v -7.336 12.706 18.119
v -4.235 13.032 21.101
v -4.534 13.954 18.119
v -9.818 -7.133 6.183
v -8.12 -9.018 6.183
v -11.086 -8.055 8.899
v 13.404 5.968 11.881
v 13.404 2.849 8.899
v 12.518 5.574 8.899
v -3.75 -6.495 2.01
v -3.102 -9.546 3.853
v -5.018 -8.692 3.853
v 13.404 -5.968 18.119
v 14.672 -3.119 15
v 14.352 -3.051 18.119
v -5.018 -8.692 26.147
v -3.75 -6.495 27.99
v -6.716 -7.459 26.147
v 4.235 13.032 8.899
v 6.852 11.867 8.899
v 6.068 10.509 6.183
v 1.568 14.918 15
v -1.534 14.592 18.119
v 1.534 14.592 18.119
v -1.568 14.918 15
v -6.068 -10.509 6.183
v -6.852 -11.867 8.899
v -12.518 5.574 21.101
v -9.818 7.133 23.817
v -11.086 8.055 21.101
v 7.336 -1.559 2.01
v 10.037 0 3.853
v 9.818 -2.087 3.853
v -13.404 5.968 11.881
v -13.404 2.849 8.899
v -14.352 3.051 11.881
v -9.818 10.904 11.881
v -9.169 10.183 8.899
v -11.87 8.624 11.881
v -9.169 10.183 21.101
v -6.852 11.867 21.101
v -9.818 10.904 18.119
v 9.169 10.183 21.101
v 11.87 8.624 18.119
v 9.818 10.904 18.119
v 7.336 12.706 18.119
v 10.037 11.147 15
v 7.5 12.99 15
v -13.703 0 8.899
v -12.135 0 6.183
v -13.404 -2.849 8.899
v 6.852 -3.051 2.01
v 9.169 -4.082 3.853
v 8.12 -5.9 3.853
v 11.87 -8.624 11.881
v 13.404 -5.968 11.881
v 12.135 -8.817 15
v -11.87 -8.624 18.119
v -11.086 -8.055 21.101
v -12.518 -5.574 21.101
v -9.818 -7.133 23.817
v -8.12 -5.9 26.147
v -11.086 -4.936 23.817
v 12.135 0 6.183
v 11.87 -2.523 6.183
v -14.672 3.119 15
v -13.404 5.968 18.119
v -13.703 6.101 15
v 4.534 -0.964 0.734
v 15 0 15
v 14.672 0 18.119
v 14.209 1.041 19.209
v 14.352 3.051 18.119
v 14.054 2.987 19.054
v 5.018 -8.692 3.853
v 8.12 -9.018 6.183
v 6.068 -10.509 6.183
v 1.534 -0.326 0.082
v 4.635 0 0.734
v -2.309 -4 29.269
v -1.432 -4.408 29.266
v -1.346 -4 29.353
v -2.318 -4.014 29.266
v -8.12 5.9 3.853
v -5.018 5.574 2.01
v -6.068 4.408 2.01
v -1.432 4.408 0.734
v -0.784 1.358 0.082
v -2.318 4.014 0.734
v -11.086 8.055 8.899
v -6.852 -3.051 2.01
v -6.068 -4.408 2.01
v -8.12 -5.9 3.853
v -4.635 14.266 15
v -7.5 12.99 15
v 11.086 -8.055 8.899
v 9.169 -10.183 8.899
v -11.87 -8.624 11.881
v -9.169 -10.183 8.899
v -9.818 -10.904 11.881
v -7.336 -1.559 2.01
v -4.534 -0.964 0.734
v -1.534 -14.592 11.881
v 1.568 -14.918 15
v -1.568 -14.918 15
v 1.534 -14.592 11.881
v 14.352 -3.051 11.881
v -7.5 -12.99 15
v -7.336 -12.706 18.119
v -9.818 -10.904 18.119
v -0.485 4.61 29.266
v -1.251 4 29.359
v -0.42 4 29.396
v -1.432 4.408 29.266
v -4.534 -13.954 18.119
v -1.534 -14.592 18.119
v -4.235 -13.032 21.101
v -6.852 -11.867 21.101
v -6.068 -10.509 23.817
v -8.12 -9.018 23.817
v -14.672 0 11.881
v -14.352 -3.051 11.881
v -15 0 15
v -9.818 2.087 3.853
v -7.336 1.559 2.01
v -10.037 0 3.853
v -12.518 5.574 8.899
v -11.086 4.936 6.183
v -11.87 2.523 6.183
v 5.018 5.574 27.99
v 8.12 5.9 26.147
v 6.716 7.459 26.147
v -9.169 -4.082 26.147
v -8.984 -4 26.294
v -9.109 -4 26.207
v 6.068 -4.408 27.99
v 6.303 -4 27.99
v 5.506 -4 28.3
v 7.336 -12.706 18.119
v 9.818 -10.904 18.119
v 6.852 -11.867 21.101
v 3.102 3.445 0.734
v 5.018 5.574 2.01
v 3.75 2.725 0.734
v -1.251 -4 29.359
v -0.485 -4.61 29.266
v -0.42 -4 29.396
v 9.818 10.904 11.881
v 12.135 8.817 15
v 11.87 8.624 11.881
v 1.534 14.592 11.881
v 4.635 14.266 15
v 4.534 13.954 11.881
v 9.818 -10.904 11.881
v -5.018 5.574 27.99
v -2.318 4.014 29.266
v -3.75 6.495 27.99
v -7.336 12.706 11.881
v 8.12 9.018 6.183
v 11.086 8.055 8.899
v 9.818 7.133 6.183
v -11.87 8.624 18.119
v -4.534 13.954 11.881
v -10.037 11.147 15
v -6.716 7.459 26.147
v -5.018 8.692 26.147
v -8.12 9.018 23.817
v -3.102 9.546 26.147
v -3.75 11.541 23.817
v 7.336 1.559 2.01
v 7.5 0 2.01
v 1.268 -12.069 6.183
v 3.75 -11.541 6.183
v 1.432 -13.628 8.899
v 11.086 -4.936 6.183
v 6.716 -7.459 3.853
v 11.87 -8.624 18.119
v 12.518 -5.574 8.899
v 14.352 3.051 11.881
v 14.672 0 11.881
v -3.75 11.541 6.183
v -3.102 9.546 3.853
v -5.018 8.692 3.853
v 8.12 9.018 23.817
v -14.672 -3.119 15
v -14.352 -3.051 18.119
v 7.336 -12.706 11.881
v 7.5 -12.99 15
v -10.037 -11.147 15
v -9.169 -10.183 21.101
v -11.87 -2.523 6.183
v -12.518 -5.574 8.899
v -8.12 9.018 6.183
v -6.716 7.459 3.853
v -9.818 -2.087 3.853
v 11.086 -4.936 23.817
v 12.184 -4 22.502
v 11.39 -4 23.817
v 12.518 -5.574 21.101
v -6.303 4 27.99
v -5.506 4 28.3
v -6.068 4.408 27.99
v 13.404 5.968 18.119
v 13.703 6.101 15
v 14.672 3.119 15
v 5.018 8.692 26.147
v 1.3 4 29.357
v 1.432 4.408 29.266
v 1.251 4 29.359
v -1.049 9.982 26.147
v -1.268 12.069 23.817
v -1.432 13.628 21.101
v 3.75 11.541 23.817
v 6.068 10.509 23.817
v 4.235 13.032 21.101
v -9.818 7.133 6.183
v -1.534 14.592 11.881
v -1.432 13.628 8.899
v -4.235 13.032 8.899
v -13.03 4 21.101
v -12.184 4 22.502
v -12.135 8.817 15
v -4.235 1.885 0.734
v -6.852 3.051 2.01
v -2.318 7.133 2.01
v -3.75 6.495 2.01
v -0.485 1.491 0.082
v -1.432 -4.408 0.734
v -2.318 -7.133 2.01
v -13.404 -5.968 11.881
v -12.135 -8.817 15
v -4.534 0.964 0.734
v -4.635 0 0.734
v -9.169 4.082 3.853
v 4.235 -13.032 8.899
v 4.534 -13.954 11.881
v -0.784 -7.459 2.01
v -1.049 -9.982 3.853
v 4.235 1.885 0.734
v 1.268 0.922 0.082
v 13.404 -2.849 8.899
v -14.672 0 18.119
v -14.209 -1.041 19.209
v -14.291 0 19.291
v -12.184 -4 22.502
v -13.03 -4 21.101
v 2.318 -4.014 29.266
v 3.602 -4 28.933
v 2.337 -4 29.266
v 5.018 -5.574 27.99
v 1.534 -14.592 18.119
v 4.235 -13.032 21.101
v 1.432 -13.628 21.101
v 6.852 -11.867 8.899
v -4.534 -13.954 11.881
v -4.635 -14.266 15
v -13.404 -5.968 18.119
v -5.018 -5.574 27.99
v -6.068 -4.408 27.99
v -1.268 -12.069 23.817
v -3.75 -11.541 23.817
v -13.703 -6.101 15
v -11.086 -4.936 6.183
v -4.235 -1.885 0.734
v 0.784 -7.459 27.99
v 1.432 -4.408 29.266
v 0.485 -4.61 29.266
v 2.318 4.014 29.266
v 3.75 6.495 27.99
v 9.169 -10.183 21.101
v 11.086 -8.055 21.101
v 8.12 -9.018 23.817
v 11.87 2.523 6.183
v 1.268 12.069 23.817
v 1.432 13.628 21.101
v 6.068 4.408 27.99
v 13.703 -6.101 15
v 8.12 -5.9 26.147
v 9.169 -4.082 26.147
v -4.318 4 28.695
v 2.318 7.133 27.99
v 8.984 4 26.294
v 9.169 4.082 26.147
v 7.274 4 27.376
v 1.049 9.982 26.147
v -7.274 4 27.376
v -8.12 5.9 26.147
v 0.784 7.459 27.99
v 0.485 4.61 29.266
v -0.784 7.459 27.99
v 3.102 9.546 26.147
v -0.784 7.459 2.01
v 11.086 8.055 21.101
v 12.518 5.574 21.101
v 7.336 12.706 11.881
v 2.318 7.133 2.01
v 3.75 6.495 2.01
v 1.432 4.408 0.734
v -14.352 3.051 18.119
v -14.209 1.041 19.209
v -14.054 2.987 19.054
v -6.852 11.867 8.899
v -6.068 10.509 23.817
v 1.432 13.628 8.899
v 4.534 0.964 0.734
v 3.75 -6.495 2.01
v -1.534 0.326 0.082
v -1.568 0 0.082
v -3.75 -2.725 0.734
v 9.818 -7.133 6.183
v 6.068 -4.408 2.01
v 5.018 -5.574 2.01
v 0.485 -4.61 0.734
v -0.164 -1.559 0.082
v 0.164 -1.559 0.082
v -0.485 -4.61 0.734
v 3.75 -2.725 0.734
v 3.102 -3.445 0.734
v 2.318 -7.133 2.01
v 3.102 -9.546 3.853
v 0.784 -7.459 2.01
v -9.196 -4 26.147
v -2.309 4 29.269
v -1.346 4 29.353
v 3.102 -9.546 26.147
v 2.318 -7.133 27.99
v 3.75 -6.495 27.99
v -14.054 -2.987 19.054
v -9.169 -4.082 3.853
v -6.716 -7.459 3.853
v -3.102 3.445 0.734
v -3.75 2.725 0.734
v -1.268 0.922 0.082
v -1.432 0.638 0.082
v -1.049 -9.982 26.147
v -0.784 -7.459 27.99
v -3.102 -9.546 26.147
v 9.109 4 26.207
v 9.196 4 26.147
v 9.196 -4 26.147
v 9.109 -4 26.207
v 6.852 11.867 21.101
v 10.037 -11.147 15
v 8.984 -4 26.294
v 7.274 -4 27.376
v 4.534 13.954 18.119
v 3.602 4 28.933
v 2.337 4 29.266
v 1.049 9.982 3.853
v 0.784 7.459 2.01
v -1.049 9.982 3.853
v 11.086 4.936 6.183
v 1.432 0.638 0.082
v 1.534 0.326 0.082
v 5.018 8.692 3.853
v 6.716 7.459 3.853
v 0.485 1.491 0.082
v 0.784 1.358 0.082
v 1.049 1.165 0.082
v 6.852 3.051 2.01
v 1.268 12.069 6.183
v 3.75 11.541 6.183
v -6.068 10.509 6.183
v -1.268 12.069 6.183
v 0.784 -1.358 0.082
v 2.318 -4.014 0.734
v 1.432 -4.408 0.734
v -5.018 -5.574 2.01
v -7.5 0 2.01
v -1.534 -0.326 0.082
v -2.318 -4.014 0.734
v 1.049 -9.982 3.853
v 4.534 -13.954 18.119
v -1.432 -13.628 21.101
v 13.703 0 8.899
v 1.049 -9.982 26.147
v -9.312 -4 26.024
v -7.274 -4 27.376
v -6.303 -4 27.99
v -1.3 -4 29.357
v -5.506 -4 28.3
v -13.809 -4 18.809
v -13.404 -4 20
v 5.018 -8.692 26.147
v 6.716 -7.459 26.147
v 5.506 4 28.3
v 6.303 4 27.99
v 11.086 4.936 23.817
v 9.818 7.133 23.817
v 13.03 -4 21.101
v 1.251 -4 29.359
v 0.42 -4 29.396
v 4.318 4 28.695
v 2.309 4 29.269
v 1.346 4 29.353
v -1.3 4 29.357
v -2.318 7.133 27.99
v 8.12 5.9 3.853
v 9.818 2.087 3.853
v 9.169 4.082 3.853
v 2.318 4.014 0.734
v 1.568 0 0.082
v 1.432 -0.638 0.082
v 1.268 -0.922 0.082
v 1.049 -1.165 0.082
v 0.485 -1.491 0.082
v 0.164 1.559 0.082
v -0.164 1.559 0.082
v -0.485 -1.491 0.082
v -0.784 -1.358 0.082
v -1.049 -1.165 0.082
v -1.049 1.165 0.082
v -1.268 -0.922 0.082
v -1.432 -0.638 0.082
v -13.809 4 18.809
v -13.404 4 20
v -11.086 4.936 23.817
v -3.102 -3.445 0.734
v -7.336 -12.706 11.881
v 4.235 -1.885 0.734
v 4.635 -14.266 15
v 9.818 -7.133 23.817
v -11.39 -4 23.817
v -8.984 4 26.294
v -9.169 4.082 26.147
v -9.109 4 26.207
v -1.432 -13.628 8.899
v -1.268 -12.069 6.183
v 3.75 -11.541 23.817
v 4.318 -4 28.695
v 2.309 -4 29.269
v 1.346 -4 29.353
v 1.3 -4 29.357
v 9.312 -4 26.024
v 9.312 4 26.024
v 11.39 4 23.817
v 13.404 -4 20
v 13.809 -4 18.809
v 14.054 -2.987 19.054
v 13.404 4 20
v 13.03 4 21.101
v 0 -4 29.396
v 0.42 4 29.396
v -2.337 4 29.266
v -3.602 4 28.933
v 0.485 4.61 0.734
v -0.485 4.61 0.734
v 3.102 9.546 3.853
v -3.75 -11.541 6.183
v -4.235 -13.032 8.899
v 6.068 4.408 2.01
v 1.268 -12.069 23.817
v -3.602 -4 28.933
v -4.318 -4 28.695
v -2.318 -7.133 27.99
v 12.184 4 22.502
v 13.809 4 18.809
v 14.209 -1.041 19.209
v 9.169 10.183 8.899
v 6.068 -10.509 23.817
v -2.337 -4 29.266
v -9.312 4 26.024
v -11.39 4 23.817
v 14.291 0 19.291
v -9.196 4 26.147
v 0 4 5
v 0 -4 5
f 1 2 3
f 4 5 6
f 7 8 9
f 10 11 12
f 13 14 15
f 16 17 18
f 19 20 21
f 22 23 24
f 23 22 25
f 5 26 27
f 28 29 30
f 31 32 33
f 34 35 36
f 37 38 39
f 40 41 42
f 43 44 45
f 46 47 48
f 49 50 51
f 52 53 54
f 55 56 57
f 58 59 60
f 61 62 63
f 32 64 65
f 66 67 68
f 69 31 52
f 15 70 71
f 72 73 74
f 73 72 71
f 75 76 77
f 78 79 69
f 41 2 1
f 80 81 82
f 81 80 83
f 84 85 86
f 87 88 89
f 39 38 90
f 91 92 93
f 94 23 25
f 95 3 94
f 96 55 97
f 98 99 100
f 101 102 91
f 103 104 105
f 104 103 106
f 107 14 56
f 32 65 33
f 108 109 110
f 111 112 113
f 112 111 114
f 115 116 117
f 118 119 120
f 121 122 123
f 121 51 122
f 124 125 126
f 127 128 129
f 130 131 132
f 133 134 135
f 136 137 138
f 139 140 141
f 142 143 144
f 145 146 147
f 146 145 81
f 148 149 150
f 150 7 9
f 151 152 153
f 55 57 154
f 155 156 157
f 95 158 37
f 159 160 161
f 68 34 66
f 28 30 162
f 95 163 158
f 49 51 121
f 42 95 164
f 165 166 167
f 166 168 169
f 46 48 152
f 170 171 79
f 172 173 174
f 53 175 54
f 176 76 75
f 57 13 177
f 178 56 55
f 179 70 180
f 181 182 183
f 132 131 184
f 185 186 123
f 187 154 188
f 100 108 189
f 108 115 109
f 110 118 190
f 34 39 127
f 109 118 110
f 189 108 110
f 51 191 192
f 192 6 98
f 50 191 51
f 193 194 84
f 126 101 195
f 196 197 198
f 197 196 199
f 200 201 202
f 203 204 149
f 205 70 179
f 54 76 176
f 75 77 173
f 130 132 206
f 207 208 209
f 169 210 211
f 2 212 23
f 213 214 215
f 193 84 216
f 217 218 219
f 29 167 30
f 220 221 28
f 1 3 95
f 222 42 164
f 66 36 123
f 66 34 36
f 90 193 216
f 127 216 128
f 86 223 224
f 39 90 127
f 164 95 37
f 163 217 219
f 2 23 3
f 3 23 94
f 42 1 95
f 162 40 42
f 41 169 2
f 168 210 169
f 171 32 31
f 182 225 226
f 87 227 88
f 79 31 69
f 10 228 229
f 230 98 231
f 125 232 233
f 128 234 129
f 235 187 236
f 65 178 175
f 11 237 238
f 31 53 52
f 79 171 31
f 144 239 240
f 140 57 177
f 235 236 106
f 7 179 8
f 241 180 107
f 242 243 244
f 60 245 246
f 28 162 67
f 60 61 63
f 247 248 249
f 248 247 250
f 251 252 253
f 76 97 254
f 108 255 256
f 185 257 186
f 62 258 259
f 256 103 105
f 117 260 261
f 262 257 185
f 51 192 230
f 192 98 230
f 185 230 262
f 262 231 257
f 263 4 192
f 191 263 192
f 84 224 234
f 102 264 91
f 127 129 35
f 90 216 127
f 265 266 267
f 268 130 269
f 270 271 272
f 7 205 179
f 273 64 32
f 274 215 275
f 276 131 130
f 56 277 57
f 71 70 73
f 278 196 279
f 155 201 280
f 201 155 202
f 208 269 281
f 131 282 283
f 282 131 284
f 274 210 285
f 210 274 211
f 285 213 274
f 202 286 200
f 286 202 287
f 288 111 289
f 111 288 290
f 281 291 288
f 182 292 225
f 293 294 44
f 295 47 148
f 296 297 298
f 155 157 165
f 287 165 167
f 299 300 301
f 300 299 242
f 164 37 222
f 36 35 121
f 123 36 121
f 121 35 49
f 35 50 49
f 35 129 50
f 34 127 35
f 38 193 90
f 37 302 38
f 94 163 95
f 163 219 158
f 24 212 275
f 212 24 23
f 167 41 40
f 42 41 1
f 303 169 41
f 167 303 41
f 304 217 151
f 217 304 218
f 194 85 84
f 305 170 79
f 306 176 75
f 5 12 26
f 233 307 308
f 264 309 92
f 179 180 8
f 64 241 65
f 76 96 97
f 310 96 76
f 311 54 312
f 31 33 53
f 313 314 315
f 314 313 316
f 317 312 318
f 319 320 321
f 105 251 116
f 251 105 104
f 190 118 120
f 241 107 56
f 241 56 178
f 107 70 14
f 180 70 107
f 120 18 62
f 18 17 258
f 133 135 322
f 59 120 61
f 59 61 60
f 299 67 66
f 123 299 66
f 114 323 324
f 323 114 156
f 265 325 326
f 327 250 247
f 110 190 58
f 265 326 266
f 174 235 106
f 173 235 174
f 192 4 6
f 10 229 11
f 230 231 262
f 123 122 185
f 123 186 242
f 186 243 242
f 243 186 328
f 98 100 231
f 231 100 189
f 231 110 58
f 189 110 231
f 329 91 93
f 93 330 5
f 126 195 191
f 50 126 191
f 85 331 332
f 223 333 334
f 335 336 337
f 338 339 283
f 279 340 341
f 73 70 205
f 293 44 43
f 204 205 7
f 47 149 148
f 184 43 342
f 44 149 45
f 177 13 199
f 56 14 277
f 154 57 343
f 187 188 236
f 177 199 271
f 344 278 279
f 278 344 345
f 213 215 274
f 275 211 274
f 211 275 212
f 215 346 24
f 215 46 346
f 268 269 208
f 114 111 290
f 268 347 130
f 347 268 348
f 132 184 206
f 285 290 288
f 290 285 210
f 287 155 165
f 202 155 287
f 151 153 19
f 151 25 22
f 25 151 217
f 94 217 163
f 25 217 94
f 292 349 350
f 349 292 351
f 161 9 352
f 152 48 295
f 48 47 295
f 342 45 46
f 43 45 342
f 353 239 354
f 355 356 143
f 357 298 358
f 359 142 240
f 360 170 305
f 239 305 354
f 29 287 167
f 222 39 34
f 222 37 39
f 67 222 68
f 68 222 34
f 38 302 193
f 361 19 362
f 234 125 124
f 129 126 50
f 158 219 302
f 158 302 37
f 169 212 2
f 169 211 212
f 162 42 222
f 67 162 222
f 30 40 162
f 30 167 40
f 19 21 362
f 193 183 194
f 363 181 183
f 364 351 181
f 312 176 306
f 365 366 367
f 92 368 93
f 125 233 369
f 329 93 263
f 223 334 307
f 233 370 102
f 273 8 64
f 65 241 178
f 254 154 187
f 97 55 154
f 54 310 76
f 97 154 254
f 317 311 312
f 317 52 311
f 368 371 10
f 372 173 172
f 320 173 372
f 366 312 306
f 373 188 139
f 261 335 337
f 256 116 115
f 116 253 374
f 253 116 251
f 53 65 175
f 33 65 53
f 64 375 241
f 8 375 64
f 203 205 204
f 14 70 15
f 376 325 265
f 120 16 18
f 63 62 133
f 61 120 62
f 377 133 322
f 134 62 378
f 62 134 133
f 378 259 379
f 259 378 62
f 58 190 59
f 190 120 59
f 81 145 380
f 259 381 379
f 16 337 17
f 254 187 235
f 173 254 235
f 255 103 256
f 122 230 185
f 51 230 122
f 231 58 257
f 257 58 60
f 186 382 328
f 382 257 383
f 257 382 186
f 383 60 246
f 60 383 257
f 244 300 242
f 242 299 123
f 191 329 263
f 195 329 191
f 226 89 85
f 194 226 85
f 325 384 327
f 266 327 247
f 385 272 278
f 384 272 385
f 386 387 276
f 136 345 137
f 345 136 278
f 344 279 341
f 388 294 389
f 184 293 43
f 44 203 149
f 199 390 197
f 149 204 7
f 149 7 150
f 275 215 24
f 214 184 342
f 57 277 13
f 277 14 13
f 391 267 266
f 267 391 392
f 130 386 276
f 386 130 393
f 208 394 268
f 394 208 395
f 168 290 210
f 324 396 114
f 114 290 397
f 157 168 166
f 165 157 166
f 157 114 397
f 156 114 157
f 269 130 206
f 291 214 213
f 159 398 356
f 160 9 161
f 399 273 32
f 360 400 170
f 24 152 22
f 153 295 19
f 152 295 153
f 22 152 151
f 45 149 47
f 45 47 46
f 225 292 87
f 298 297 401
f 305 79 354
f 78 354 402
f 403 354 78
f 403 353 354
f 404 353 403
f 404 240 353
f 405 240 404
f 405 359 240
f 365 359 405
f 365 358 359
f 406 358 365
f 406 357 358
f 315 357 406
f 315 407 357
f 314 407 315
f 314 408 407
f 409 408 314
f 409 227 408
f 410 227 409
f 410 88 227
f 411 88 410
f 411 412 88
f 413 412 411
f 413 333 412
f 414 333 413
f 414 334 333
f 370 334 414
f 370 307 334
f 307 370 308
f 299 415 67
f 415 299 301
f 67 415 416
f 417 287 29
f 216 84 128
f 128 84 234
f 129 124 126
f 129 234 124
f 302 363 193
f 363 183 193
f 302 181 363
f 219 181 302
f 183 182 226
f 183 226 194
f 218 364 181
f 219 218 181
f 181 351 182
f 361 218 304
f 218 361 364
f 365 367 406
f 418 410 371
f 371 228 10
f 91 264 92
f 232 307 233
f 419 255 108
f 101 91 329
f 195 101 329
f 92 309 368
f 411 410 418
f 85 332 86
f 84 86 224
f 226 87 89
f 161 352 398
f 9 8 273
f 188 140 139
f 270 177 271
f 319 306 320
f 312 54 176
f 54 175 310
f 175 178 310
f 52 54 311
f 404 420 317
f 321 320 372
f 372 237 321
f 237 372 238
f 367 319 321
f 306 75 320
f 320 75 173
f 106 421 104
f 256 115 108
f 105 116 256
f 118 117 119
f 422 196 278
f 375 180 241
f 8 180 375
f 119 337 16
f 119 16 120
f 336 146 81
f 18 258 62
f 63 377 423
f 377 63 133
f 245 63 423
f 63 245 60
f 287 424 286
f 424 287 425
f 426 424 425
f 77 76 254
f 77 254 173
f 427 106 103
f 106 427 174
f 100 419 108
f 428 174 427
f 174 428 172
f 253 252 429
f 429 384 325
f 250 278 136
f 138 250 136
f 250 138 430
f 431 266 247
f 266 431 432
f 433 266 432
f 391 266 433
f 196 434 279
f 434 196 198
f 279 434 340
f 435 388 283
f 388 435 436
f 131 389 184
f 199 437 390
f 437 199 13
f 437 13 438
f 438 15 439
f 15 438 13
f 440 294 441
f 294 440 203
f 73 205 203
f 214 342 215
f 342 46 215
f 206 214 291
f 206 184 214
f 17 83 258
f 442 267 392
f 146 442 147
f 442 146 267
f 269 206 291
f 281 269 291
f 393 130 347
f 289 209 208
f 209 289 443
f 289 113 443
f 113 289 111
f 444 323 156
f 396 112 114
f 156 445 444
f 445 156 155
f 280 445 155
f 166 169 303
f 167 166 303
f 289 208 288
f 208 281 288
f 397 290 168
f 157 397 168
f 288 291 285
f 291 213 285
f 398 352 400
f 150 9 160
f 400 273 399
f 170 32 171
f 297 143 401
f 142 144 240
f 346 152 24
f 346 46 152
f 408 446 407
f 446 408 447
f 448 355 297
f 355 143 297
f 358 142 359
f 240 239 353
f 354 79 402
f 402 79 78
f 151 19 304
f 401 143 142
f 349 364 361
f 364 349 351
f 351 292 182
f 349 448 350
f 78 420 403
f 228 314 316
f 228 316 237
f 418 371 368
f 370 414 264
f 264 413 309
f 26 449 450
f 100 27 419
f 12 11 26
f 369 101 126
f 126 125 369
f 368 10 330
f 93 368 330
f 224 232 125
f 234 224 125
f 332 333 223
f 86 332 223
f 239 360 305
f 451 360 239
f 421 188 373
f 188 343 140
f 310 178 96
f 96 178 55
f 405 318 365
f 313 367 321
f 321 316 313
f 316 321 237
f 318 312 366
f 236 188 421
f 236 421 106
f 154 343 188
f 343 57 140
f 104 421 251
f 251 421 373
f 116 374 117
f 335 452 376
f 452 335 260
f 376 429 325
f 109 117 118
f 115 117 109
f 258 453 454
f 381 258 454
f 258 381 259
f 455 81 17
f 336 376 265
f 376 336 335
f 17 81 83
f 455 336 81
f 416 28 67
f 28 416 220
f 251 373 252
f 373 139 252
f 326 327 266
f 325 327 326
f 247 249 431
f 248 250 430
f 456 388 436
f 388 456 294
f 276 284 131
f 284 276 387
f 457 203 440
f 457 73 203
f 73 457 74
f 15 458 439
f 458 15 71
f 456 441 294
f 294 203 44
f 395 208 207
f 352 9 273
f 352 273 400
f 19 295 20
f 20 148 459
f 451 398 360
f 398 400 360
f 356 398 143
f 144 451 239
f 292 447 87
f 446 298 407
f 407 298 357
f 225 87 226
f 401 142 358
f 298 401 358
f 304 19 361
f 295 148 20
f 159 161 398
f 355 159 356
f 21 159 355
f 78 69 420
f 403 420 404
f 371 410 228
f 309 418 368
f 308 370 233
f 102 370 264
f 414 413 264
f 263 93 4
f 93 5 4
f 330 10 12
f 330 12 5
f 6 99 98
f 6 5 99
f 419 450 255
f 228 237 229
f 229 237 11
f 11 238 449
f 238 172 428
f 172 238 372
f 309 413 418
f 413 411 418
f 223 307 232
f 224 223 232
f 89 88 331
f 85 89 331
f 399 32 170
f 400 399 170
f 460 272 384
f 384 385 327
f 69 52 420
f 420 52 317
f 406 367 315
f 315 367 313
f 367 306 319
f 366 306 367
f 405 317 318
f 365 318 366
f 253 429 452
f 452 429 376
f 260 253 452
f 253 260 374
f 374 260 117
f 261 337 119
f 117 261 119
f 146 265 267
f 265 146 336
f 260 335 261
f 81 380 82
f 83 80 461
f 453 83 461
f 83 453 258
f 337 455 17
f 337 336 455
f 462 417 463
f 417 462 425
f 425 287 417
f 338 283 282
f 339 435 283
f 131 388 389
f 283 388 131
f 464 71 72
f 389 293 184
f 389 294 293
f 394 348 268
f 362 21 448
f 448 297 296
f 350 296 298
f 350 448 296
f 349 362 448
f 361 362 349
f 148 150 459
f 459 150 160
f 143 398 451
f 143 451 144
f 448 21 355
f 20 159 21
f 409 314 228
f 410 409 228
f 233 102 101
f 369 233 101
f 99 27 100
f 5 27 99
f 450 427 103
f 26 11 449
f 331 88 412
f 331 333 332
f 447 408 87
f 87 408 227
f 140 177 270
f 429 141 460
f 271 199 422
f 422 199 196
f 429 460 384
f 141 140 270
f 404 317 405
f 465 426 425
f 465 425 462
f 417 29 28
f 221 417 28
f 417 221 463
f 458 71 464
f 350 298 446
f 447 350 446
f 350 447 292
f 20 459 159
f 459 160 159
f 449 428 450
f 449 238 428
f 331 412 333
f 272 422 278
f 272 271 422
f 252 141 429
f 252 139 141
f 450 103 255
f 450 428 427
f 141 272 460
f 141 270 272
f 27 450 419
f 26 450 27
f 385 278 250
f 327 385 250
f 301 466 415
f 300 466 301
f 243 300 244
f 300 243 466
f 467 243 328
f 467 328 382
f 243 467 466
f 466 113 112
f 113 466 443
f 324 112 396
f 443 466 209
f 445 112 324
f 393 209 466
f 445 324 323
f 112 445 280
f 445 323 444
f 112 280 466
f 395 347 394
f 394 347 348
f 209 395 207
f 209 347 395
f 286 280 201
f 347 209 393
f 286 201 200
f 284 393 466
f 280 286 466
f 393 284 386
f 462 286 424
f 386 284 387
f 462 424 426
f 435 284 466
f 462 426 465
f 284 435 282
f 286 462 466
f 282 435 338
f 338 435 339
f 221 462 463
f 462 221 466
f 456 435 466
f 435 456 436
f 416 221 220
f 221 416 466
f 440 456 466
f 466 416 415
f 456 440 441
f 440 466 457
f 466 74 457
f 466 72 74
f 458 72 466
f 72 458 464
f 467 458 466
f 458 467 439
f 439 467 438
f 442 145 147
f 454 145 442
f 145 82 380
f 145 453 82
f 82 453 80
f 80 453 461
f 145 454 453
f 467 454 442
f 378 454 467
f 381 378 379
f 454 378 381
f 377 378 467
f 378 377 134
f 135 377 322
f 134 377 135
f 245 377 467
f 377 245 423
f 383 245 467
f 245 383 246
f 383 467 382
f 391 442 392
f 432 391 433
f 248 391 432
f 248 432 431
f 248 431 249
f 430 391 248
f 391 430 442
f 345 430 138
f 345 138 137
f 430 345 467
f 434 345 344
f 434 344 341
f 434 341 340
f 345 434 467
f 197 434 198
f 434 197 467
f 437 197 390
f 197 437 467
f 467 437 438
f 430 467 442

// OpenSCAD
module edge() {
    translate([0, 0, sin(45) * 30]) rotate([-45, 0, 0]) rotate([0, 90, 0]) difference() {
        minkowski() {
            cube([30, 30, 10]);
            sphere(1, $fn=60);
         }
        translate([1, 1, 1]) cube([30, 30, 8]);
        rotate([0, 0, 45]) translate([sin(45) * 30, -30, -5]) cube([60, 60, 20]);
    }
}

module edgeSphere() {
    difference() {
        translate([0, 0, 15]) sphere(15);
        translate([0, -4, 25]) rotate([-90, 0, 0]) rotate([0, 0, 45]) cube([30, 30, 8]);
    }
}

//edge();
translate([0, 0, 30])rotate([0, 180, 0]) edgeSphere();
